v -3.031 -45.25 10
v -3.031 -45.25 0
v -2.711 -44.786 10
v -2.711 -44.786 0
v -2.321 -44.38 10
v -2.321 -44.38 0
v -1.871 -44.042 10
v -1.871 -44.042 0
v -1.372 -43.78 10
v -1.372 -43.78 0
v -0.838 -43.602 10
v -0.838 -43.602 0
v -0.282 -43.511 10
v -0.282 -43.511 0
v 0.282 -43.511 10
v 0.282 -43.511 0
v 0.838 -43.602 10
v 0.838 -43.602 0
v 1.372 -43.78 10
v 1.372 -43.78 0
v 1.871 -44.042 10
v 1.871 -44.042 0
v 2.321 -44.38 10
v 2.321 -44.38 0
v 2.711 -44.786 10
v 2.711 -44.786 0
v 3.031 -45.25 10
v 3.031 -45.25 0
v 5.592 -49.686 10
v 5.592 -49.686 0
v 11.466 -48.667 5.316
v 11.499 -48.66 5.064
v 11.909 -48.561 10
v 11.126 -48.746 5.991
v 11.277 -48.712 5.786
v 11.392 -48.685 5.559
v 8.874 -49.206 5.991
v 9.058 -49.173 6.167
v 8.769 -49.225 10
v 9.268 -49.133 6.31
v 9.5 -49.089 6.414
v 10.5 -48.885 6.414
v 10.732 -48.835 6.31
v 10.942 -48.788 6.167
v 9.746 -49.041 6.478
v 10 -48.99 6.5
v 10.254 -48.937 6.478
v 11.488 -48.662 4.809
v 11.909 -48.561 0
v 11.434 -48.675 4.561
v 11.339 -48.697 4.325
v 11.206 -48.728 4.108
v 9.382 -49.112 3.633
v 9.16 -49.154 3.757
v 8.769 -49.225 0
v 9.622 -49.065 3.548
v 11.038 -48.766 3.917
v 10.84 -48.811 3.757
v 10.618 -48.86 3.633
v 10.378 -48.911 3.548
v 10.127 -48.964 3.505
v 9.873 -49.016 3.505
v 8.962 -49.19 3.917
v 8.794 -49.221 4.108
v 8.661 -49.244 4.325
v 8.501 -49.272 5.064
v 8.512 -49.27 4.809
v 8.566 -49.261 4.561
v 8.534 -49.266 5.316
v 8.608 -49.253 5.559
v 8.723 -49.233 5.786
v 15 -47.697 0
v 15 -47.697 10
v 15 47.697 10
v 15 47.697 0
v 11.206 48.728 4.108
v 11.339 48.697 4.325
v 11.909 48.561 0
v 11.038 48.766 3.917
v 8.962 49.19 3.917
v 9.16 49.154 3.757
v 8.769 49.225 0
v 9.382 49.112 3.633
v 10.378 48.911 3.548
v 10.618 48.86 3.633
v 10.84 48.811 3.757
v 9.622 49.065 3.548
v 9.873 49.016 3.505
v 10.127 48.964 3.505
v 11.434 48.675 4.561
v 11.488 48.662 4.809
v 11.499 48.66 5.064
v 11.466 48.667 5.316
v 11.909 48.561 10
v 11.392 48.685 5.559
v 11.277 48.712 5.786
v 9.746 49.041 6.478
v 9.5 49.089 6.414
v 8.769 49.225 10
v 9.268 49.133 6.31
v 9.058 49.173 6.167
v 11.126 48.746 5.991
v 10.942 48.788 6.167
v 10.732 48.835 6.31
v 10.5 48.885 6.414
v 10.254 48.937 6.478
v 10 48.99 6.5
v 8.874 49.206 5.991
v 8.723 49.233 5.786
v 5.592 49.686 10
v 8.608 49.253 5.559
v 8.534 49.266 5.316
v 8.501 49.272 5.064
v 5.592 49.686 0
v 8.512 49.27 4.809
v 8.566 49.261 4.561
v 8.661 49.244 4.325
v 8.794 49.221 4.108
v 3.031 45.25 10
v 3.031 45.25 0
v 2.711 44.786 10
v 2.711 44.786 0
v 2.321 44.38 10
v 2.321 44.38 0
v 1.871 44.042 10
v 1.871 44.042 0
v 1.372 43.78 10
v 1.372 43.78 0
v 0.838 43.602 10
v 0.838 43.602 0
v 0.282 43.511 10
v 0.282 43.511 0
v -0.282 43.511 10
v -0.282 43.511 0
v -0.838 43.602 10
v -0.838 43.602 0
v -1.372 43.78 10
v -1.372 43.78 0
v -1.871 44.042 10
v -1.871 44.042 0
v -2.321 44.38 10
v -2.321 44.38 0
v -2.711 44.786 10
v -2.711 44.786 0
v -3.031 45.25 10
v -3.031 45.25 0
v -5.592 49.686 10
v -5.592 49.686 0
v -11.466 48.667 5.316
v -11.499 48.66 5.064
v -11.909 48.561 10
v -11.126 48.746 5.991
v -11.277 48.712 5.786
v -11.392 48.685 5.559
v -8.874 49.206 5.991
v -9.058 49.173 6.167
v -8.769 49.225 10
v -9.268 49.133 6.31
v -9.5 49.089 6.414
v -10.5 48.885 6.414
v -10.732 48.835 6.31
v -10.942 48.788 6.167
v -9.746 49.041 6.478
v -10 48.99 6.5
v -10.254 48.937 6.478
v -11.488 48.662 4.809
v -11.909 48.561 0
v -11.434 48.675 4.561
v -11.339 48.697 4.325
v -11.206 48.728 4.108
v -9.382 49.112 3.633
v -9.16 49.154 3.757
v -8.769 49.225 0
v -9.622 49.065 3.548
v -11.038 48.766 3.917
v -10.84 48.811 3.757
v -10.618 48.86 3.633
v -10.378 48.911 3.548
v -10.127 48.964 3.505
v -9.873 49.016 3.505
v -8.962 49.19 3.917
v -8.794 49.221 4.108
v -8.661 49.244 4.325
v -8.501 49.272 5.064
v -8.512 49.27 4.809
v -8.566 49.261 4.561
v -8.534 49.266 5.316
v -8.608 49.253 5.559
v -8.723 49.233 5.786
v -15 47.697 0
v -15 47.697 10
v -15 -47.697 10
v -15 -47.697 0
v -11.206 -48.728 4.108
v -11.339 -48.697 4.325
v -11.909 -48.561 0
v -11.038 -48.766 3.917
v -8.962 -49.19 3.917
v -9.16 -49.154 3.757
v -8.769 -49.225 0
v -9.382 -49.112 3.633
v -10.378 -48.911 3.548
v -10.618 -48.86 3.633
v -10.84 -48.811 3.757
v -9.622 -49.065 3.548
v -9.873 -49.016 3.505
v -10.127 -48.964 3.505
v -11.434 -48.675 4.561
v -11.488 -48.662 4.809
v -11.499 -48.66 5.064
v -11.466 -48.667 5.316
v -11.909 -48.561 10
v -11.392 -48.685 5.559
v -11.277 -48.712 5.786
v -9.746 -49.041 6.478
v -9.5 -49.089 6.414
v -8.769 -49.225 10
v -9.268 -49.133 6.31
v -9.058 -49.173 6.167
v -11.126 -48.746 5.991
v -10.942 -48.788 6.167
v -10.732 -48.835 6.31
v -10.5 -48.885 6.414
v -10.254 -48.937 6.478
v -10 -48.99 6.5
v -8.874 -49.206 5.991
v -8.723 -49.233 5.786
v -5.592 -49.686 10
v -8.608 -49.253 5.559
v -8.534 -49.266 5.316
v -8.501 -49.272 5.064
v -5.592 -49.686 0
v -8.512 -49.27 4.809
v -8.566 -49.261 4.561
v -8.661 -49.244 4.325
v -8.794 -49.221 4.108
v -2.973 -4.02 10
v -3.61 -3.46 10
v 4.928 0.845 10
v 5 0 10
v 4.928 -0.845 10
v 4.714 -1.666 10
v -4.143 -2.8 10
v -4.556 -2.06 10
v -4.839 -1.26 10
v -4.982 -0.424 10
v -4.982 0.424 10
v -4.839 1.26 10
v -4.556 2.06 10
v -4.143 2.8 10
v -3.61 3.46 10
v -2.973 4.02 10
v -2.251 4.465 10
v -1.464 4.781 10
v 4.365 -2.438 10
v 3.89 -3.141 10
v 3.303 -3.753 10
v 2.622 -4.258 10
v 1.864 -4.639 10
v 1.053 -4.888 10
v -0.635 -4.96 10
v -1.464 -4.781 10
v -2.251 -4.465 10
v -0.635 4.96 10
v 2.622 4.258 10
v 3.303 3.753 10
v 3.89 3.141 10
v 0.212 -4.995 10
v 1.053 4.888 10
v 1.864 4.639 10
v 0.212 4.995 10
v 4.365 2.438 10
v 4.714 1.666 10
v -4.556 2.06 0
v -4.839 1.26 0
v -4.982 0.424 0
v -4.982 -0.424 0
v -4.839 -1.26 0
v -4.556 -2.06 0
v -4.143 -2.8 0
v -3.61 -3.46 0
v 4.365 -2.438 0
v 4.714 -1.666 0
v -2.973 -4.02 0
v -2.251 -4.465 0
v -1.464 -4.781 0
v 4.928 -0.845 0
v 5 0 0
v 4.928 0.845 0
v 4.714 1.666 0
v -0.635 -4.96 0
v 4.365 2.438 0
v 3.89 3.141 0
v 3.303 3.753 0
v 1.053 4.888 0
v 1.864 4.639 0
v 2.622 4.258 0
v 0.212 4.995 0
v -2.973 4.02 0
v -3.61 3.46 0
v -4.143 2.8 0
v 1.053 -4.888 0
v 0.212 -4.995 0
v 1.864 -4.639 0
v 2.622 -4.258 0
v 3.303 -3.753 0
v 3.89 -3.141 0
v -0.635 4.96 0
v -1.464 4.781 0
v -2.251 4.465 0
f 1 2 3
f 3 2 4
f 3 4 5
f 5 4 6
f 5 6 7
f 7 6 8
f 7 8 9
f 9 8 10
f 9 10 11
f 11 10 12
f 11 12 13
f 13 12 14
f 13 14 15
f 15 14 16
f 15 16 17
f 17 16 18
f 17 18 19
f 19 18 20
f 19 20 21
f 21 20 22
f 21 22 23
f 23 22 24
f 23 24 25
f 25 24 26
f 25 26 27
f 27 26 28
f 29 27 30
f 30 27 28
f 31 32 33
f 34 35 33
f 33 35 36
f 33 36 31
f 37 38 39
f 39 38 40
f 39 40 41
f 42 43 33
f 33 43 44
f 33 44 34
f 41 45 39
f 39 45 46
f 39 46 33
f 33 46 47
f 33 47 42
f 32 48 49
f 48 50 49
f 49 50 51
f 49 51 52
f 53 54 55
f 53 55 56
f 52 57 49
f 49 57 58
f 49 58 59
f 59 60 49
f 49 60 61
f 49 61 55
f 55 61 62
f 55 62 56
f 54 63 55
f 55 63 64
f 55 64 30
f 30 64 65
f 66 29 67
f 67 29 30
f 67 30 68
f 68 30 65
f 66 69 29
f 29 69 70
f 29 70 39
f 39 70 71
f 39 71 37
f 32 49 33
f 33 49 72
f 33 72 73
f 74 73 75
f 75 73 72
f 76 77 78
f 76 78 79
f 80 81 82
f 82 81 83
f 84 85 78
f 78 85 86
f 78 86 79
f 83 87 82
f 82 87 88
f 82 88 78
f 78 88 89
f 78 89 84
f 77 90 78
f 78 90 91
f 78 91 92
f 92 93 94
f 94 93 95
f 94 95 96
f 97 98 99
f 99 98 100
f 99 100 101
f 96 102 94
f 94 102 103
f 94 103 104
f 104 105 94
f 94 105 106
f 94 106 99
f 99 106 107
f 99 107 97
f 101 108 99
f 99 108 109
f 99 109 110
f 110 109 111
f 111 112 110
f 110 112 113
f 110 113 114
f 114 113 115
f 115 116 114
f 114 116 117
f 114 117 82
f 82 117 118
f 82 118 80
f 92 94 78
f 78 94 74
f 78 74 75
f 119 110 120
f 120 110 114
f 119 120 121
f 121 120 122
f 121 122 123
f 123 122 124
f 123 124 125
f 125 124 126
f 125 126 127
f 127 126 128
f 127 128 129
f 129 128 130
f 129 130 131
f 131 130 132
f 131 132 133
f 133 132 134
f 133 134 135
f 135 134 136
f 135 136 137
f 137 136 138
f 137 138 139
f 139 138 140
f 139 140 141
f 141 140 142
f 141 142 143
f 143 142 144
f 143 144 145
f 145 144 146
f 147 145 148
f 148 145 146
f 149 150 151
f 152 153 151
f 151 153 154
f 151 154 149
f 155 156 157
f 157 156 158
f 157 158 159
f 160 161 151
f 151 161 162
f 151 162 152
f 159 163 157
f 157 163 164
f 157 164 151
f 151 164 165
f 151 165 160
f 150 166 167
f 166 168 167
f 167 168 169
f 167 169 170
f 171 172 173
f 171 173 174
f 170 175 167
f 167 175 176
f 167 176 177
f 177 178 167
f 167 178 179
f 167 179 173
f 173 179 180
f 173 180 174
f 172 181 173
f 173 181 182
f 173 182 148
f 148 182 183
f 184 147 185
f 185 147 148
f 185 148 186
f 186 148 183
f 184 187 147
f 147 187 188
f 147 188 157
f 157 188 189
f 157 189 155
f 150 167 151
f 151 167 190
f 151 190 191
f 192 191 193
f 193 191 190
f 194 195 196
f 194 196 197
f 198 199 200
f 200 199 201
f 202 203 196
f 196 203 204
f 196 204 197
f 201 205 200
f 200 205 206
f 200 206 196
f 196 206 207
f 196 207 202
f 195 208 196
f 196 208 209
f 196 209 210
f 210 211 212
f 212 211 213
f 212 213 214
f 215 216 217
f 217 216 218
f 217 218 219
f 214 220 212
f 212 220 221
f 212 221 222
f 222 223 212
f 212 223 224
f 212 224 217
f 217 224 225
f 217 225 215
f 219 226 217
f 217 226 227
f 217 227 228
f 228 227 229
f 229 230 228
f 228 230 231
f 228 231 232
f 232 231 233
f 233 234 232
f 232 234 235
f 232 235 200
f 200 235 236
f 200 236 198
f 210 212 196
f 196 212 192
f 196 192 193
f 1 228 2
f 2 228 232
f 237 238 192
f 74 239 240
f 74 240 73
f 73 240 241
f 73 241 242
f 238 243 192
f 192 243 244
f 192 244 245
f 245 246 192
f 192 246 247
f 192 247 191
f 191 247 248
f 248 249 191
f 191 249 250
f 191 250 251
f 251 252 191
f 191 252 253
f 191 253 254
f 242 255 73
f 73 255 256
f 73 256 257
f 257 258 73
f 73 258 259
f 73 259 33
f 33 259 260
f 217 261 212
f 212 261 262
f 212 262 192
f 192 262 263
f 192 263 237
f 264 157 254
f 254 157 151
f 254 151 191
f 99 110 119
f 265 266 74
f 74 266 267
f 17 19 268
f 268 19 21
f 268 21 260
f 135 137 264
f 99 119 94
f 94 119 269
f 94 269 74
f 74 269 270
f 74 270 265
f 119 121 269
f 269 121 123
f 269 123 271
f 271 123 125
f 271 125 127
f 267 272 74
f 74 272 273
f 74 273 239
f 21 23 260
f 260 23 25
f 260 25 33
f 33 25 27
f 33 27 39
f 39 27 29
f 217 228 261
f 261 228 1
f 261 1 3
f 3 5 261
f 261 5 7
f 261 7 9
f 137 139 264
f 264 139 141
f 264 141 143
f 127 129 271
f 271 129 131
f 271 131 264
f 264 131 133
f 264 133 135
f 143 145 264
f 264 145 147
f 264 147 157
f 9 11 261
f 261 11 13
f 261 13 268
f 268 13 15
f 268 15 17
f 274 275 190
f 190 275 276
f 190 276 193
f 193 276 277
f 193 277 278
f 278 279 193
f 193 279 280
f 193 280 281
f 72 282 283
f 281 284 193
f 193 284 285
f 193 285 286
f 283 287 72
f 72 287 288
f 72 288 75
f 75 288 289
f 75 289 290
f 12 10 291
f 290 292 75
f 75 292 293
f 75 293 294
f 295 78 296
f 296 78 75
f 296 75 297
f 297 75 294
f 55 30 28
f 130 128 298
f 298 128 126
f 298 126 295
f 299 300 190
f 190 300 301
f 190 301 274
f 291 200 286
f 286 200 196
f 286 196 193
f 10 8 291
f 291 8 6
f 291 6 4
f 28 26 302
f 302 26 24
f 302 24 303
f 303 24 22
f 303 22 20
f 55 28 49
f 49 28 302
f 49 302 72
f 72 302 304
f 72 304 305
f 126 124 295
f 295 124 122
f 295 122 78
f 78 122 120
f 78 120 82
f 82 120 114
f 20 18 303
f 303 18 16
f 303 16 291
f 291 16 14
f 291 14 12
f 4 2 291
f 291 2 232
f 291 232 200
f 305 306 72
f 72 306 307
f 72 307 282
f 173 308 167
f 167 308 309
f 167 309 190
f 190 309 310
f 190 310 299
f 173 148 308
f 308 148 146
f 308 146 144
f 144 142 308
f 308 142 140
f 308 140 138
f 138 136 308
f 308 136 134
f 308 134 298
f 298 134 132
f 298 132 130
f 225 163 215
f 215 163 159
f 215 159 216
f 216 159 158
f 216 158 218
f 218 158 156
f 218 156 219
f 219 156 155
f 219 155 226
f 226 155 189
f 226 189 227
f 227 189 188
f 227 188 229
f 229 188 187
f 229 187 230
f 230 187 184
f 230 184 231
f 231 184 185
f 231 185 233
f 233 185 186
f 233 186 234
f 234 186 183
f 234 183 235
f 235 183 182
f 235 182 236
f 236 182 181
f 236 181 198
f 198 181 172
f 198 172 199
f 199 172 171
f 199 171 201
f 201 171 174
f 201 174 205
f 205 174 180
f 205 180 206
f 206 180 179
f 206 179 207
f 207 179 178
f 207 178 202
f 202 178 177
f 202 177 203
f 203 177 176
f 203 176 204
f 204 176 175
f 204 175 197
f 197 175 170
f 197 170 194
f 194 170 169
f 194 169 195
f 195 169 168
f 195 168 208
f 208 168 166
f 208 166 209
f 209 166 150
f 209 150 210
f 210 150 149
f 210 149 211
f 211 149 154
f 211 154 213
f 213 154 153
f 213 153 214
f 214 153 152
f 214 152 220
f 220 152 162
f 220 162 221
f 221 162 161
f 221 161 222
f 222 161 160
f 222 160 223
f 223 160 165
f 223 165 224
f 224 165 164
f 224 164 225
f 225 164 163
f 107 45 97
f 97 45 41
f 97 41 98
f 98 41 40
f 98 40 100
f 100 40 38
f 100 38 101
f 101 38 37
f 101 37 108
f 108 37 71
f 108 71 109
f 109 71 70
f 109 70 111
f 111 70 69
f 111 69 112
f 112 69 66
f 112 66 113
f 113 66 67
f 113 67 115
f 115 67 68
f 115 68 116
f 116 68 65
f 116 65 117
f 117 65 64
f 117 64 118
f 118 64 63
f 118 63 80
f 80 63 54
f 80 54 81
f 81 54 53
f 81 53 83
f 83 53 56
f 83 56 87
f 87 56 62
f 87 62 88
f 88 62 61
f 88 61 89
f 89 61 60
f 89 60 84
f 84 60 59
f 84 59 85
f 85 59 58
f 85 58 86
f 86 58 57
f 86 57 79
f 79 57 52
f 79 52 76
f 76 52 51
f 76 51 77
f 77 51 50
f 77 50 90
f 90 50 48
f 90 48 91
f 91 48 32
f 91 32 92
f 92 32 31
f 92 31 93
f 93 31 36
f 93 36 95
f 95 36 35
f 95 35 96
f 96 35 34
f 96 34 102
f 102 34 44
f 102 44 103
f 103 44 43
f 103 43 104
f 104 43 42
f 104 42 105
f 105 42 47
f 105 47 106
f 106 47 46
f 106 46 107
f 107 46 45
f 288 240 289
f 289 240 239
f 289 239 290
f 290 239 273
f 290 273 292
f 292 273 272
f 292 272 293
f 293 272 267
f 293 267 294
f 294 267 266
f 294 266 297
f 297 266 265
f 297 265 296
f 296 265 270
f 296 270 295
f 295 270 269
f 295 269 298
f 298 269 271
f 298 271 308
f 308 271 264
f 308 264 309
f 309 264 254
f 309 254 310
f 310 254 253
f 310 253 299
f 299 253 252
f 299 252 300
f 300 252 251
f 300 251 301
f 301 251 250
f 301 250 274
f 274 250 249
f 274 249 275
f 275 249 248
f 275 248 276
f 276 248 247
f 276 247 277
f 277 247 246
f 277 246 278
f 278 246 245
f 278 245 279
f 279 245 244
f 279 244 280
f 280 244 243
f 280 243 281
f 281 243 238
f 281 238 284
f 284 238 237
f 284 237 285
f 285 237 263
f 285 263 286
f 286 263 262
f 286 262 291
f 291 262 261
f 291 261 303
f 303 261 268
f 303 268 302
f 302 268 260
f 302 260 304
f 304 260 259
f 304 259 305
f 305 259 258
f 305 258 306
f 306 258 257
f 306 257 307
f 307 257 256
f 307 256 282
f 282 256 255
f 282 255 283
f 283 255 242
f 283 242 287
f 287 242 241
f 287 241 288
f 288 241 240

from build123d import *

# Parameters (mm, degrees)
EXTRUDE_1_DEPTH          = 10
CUT_EXTRUDE_1_DEPTH      = 53.855703508
CUT_EXTRUDE_1_DEPTH_BACK = 53.855703508
SKETCH_2_R               = 1.5
CUT_EXTRUDE_2_DEPTH      = 53.855703649
CUT_EXTRUDE_2_DEPTH_BACK = 53.855703649
SKETCH_3_R               = 5


with BuildPart() as part:
    # 草图1 → 凸台-拉伸1 (new body)
    with BuildSketch(Plane.XY):
        with BuildLine():
            ThreePointArc((-5.592370399, 49.686269666), (-10.344117547, 48.918291386), (-15, 47.696960071))
            Line((-15, 47.696960071), (-15, -47.696960071))
            ThreePointArc((-15, -47.696960071), (-10.344117547, -48.918291386), (-5.592370399, -49.686269666))
            Line((-5.592370399, -49.686269666), (-3.031088913, -45.25))
            ThreePointArc((-3.031088913, -45.25), (0, -43.5), (3.031088913, -45.25))
            Line((3.031088913, -45.25), (5.592370399, -49.686269666))
            ThreePointArc((5.592370399, -49.686269666), (10.344117547, -48.918291386), (15, -47.696960071))
            Line((15, -47.696960071), (15, 47.696960071))
            ThreePointArc((15, 47.696960071), (10.344117547, 48.918291386), (5.592370399, 49.686269666))
            Line((5.592370399, 49.686269666), (3.031088913, 45.25))
            ThreePointArc((3.031088913, 45.25), (0, 43.5), (-3.031088913, 45.25))
            Line((-3.031088913, 45.25), (-5.592370399, 49.686269666))
        make_face()
    extrude(amount=EXTRUDE_1_DEPTH)

    # 草图2 → 切除-拉伸1 (cut, two sides: drawn at the far end of the back side and taken through both)
    with BuildSketch(Plane(origin=(0, 0, 0), x_dir=(1, 0, 0), z_dir=(0, 1, 0)).offset(-CUT_EXTRUDE_1_DEPTH_BACK)):
        with Locations(Location((-10, -5, 0), (0, 0, 270))):
            Circle(SKETCH_2_R)
        with Locations(Location((10, -5, 0), (0, 0, 270))):
            Circle(SKETCH_2_R)
    extrude(amount=CUT_EXTRUDE_1_DEPTH + CUT_EXTRUDE_1_DEPTH_BACK, mode=Mode.SUBTRACT)

    # 草图3 → 切除-拉伸2 (cut, two sides: drawn at the far end of the back side and taken through both)
    with BuildSketch(Plane.XY.offset(10).offset(-CUT_EXTRUDE_2_DEPTH_BACK)):
        Circle(SKETCH_3_R)
    extrude(amount=CUT_EXTRUDE_2_DEPTH + CUT_EXTRUDE_2_DEPTH_BACK, mode=Mode.SUBTRACT)


solid = part.part
